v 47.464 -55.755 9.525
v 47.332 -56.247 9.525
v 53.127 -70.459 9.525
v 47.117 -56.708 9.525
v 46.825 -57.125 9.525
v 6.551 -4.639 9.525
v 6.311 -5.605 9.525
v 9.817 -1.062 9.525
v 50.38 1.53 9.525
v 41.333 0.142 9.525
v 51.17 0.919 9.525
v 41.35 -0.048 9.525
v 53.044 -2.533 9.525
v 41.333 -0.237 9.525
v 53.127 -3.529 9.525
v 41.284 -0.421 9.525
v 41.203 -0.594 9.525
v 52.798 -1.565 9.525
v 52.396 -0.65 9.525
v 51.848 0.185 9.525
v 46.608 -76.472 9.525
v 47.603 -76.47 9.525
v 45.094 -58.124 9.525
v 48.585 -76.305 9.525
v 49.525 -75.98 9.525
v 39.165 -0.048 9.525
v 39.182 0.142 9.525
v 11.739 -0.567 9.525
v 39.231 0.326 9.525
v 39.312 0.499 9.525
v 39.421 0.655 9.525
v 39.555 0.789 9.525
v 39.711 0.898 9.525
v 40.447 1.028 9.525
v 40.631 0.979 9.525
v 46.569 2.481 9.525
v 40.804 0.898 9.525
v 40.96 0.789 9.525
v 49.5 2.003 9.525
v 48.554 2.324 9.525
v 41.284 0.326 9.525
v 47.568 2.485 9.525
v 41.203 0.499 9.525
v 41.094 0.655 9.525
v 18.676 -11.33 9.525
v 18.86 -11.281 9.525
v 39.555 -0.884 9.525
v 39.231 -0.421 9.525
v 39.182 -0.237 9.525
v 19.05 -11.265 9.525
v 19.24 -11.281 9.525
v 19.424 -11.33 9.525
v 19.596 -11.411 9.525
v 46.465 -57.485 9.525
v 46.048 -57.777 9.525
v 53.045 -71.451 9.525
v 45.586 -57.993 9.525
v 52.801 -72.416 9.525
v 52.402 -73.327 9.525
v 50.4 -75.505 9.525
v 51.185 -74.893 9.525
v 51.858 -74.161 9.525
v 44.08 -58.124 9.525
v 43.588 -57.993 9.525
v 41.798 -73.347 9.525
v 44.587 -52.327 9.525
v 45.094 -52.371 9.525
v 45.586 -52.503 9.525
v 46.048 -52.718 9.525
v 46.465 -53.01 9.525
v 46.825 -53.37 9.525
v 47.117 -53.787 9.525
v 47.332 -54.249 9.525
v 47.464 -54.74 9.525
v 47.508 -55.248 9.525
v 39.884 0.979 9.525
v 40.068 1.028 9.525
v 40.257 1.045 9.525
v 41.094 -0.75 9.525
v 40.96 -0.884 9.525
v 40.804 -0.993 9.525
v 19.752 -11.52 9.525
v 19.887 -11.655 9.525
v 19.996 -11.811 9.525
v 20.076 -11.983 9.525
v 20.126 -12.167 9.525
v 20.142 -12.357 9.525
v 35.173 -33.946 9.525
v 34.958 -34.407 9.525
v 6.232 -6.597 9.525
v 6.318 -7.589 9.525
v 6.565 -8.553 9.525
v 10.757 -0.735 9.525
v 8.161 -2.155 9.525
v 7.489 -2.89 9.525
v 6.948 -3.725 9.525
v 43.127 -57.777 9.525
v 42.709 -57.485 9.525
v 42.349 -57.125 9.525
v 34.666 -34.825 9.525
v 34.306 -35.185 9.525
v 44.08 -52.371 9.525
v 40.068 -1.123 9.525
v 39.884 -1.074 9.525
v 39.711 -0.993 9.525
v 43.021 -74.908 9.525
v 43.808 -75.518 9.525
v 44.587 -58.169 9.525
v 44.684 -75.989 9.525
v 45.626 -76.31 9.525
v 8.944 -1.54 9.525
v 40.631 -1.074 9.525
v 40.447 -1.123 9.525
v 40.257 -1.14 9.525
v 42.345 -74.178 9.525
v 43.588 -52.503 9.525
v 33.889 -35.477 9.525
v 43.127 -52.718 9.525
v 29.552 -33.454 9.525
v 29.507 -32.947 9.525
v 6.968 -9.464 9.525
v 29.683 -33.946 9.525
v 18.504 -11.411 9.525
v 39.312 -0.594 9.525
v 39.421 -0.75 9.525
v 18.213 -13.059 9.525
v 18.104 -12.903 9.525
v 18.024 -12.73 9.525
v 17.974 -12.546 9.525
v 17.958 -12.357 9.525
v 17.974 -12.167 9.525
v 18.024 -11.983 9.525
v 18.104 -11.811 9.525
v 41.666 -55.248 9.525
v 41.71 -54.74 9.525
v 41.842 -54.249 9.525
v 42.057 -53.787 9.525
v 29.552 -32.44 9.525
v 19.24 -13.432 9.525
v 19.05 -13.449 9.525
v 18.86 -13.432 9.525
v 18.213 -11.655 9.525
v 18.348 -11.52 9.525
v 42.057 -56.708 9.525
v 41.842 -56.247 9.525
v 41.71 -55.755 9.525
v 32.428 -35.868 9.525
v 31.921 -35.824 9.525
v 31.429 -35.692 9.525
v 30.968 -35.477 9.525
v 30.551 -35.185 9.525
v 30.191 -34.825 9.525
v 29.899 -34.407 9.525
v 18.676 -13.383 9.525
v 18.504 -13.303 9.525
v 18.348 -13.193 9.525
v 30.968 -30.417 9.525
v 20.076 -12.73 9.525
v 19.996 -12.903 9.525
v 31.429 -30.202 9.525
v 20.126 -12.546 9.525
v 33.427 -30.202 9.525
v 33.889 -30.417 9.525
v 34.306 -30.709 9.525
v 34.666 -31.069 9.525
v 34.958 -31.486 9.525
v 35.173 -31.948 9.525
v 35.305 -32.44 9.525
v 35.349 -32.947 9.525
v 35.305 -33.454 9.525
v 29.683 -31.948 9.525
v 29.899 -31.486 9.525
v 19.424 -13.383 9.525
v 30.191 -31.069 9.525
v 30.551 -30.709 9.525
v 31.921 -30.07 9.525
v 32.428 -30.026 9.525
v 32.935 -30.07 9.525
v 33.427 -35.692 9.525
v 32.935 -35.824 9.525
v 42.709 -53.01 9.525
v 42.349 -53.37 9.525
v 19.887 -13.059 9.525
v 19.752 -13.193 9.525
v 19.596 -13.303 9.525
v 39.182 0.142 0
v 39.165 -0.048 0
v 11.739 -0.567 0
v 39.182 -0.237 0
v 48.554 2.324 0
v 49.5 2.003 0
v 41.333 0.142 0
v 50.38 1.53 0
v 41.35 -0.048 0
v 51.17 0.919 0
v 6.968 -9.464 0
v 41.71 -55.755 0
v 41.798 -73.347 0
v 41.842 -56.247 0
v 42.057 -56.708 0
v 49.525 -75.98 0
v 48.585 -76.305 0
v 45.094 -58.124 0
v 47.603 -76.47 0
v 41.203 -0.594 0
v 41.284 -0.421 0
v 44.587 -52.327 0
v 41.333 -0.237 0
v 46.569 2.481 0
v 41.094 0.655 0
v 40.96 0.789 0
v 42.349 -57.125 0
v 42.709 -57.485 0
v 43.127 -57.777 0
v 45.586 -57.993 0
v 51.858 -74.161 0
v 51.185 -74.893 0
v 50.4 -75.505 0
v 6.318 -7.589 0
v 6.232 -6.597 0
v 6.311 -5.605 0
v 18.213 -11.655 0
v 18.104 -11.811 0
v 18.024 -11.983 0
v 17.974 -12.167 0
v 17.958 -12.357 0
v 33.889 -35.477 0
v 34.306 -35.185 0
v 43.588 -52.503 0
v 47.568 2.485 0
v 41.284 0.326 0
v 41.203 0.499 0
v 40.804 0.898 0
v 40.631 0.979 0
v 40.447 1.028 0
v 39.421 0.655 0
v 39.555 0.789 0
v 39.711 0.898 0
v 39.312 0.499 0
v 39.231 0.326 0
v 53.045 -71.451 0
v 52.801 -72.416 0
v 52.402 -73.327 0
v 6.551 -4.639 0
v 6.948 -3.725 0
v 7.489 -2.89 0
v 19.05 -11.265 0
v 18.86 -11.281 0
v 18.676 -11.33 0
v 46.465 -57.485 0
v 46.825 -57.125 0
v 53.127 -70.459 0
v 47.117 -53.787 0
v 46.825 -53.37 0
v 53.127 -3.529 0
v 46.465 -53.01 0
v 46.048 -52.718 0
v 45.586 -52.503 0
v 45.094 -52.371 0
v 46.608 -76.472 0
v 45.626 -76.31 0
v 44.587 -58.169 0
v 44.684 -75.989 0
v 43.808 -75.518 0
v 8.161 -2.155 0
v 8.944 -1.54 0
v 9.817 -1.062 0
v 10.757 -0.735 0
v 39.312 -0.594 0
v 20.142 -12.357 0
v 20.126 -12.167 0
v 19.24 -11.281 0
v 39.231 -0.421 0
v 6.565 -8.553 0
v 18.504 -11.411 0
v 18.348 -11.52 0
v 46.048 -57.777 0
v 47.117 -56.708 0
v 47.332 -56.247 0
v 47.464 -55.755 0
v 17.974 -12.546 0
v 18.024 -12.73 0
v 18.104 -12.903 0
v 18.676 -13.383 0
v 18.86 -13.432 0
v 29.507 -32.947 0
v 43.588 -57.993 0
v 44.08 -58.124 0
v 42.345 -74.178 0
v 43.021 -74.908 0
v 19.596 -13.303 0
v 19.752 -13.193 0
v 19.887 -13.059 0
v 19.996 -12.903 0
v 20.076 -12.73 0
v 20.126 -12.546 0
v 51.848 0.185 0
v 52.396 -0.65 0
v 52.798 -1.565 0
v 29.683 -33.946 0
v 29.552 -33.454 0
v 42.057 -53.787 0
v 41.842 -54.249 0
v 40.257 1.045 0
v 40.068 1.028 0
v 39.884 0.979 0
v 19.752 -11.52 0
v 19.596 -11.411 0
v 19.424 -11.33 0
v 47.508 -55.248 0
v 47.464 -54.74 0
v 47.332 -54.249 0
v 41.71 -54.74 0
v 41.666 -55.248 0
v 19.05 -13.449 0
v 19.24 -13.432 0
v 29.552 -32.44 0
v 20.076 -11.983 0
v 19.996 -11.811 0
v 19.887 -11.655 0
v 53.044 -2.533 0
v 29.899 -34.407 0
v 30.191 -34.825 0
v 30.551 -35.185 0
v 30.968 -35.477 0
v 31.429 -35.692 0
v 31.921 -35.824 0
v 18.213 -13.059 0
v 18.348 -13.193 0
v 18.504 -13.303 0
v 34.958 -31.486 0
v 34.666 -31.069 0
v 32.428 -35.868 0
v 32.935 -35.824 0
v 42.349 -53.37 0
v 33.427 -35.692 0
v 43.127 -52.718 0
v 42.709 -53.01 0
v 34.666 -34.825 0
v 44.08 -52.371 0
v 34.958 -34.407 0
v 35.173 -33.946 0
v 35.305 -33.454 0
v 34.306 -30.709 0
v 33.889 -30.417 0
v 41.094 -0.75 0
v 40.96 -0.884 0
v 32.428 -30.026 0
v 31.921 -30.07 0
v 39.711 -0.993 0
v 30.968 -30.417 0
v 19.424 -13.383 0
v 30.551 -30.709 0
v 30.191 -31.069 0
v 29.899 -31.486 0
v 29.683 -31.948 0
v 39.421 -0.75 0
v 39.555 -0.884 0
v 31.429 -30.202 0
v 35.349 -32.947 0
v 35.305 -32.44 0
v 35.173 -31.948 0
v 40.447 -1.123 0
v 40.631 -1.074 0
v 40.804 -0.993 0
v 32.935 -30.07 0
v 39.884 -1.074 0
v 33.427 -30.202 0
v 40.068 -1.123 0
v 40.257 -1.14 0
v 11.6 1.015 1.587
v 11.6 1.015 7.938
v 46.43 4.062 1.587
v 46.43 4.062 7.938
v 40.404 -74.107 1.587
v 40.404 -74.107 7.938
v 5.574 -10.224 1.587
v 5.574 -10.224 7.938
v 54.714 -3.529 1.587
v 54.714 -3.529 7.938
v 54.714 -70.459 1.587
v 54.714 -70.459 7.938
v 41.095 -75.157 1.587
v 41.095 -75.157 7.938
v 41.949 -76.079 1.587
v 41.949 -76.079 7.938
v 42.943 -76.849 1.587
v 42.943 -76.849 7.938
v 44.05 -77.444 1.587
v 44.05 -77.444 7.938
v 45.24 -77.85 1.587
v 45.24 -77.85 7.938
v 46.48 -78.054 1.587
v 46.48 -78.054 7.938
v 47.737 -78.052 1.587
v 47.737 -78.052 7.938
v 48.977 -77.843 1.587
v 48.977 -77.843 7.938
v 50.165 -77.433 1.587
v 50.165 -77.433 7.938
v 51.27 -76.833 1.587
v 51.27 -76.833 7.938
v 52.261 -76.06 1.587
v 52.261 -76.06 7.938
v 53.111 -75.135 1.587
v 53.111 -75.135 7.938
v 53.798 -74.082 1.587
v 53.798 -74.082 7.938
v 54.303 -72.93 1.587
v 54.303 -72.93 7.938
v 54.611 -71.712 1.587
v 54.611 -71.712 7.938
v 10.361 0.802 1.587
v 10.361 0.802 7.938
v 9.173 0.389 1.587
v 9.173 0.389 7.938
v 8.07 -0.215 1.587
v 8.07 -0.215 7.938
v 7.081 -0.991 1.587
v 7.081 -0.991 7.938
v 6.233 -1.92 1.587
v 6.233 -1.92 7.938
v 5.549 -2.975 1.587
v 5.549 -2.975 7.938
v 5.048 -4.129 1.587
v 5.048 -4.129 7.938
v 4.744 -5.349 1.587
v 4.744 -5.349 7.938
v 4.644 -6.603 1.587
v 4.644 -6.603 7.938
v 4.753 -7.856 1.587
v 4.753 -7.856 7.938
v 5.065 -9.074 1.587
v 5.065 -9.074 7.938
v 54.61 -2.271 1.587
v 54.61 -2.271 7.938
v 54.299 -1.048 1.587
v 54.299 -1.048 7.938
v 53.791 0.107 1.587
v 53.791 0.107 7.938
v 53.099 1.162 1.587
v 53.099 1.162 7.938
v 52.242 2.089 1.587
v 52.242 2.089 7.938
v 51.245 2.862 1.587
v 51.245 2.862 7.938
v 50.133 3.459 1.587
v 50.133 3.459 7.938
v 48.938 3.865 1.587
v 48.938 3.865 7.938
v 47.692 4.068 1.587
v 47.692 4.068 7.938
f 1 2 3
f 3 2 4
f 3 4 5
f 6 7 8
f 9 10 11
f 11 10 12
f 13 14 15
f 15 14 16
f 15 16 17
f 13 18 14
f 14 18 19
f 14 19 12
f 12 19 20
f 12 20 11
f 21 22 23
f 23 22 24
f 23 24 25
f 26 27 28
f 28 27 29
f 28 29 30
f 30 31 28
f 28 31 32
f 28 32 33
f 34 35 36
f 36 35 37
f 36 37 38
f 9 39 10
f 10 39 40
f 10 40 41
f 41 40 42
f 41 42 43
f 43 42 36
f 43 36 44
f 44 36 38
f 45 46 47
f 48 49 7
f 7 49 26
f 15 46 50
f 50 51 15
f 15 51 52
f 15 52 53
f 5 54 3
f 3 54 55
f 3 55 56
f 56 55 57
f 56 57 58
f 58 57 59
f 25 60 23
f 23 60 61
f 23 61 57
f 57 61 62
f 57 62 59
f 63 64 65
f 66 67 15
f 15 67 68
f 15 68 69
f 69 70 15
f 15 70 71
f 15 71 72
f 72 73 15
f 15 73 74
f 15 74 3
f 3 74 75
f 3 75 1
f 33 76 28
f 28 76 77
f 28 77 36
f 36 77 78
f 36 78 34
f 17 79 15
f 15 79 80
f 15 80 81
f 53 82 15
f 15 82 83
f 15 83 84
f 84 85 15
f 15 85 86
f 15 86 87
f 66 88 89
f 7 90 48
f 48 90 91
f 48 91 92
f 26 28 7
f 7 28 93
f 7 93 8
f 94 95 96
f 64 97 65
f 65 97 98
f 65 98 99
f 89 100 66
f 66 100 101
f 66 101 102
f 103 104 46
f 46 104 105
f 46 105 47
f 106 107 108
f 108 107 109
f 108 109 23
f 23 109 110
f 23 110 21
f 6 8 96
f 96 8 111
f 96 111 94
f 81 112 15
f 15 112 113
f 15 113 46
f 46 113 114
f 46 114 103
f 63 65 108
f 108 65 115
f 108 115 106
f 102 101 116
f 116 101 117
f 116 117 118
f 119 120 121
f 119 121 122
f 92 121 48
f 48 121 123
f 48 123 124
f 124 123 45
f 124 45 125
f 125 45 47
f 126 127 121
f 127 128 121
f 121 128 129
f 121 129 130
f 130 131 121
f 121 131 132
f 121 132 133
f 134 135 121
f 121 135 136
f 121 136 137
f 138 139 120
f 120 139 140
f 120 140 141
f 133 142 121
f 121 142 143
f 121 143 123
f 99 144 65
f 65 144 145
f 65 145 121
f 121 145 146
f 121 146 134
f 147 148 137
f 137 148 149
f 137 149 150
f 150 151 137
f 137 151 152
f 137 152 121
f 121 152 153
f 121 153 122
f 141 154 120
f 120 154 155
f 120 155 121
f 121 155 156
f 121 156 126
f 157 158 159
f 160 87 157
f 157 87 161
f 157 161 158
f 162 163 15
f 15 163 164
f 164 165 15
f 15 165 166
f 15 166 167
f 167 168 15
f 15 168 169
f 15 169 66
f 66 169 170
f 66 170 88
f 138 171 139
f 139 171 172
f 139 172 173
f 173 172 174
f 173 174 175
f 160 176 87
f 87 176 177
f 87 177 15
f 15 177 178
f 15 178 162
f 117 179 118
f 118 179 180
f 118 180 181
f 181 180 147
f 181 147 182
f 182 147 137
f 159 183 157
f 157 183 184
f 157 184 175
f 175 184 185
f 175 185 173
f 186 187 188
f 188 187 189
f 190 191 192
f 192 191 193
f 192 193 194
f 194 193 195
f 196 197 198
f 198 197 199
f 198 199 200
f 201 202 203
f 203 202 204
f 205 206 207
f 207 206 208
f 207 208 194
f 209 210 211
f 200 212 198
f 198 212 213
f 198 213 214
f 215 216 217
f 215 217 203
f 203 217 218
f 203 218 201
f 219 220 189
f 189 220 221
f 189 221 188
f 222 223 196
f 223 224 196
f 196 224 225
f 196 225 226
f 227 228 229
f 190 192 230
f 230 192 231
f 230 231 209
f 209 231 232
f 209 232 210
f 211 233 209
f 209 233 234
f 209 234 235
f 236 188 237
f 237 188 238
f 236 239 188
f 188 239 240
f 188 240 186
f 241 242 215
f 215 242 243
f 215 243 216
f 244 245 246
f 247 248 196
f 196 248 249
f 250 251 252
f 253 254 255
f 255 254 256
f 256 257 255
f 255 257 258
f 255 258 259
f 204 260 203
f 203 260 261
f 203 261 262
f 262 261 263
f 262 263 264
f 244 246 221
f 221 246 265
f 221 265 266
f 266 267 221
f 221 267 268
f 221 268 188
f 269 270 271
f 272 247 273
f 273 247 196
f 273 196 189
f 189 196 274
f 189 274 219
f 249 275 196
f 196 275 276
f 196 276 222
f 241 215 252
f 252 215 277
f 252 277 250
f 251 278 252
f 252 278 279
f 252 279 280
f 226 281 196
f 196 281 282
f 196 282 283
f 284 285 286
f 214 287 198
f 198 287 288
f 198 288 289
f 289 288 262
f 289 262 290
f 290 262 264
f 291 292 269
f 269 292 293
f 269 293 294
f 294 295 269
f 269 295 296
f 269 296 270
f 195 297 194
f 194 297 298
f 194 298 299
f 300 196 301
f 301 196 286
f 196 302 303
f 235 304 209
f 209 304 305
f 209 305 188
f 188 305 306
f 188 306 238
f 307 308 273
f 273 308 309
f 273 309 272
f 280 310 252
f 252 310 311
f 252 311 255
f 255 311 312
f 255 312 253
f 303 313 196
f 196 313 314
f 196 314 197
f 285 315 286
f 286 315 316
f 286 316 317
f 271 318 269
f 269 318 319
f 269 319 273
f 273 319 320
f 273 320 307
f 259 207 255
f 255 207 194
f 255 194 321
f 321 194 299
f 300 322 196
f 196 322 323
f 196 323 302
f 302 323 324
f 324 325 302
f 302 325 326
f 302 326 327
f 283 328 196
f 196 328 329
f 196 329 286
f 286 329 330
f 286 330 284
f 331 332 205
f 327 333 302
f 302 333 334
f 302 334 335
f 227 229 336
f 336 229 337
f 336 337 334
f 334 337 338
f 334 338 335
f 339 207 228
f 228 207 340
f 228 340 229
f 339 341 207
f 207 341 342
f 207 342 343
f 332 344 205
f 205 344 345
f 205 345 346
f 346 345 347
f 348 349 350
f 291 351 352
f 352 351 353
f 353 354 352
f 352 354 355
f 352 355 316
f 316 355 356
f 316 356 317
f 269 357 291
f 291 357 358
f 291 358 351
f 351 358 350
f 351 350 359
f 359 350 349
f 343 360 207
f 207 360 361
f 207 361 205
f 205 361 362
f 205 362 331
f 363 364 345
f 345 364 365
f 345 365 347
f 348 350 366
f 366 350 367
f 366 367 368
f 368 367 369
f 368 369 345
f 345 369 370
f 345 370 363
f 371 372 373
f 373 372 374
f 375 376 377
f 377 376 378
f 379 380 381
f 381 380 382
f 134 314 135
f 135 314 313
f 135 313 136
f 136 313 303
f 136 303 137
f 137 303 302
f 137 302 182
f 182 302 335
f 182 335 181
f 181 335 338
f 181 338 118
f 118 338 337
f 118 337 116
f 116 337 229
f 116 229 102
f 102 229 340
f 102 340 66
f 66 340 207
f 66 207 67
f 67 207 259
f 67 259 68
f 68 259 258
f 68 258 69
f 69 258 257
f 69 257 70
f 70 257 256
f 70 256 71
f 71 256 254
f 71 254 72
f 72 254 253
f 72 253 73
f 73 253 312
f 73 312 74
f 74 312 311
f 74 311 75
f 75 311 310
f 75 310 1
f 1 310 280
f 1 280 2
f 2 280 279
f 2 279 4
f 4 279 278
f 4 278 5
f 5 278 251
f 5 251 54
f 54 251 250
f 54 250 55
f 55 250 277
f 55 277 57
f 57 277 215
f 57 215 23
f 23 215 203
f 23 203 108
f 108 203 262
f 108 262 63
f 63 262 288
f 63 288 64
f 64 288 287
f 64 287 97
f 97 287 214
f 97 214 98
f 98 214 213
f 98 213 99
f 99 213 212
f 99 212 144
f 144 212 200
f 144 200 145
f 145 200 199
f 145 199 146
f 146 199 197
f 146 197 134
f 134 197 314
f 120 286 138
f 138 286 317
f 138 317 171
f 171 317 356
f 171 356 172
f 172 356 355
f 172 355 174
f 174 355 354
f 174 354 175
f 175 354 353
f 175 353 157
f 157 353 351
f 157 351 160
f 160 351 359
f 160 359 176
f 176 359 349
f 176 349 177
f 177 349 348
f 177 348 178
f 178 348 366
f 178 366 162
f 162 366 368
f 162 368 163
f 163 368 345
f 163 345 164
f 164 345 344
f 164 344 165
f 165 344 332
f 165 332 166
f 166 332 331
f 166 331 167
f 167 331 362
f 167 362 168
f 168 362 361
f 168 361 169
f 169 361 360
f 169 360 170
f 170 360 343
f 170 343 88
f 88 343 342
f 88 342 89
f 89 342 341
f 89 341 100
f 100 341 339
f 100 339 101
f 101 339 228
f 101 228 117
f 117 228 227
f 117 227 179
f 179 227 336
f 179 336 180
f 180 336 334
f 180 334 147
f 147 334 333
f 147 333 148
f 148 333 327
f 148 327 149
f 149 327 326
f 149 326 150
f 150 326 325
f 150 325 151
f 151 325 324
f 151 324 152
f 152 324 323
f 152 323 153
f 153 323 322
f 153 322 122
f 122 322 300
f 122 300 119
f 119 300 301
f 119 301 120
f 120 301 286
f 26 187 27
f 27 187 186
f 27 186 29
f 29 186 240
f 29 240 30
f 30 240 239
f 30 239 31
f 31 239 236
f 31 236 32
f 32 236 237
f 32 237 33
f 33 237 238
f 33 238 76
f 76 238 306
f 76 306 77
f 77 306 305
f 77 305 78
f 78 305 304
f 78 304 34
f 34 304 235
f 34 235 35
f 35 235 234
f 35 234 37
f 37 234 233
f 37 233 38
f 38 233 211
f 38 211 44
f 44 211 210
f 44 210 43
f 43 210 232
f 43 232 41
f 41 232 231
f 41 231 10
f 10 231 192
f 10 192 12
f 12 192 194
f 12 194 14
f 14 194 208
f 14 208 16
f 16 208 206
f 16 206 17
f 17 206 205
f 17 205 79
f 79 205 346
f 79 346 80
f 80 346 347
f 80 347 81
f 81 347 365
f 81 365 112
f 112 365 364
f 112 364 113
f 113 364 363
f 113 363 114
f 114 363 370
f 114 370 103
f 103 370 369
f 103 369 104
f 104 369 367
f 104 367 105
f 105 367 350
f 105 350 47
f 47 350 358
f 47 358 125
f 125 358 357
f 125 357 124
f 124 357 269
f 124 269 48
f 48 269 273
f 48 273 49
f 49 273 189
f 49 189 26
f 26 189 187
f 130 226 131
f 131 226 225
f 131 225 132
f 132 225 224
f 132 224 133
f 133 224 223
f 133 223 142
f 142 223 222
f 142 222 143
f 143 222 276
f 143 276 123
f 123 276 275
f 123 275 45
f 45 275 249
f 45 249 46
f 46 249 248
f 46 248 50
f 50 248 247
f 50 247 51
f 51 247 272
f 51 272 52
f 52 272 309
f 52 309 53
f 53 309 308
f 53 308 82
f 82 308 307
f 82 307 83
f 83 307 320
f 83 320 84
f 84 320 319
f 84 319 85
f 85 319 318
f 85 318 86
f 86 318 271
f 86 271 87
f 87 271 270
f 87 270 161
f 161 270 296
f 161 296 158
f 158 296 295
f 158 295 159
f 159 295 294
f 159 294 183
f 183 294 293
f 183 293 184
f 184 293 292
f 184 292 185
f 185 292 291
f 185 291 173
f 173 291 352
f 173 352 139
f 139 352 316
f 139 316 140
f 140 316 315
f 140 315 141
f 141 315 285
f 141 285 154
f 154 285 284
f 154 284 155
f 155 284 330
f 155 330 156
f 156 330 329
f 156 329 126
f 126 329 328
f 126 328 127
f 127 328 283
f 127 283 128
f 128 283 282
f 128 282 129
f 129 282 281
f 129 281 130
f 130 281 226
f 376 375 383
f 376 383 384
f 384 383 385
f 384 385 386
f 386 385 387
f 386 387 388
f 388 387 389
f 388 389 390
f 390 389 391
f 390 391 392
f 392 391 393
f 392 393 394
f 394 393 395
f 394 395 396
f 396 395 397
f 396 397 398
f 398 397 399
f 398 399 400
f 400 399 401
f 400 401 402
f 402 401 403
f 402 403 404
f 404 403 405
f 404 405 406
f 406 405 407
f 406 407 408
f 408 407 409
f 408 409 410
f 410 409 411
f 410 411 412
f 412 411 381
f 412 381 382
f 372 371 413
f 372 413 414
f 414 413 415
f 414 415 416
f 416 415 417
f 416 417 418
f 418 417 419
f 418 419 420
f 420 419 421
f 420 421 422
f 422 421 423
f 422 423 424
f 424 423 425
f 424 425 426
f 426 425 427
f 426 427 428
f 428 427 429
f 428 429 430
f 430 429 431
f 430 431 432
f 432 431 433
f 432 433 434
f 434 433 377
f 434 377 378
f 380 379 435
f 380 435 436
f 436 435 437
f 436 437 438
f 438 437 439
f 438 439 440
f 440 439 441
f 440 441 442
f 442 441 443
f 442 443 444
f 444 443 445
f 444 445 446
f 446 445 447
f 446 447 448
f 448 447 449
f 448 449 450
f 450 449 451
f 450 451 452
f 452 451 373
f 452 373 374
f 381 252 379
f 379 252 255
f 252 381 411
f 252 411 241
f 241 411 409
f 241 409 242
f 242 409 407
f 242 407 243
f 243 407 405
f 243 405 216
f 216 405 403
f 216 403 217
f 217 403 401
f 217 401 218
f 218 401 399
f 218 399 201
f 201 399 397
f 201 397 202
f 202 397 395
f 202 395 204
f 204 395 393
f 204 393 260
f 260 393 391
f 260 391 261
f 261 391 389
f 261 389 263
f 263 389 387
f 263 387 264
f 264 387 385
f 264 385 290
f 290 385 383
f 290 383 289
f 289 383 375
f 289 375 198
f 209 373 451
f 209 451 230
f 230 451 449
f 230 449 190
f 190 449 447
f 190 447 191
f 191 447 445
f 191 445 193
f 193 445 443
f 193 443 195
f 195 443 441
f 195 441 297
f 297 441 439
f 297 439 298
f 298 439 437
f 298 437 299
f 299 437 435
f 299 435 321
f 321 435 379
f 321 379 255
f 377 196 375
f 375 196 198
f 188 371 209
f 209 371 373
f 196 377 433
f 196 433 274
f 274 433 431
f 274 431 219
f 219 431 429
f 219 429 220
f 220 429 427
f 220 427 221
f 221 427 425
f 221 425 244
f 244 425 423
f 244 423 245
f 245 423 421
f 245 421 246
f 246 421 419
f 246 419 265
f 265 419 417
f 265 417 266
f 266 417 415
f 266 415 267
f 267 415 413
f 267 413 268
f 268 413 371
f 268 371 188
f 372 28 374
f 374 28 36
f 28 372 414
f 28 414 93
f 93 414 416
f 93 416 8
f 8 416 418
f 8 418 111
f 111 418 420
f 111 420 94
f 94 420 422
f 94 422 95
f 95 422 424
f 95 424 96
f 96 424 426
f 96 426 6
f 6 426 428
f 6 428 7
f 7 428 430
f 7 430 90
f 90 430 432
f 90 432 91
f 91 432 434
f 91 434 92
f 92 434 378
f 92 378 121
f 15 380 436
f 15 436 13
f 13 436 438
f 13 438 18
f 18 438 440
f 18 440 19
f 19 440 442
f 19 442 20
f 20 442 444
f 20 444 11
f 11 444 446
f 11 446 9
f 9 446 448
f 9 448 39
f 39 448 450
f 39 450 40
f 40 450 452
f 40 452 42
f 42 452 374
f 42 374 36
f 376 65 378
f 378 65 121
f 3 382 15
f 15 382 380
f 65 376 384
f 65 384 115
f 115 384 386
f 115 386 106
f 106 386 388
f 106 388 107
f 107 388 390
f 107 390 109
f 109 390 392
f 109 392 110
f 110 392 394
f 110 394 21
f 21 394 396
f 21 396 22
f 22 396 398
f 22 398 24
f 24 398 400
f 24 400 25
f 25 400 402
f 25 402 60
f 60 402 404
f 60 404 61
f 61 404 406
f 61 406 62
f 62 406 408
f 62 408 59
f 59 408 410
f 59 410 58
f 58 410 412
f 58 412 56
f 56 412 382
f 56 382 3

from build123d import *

# Parameters (mm, degrees)
SKETCH1_R           = 2.921
SKETCH1_R_2         = 1.0922
BOSS_EXTRUDE1_DEPTH = 9.525
FILLET1_R           = 7.62
CHAMFER1_SIZE       = 1.5875


with BuildPart() as part:
    # Sketch1 → Boss-Extrude1 (new body)
    with BuildSketch(Plane.XY):
        Polygon((0, 0), (54.714479363, -100.353454091), (54.714479363, 4.786896675), align=None)
        with Locations(Location((44.587010065, -55.247724238, 0), (0, 0, 180))):
            Circle(SKETCH1_R, mode=Mode.SUBTRACT)
        with Locations(Location((32.428236873, -32.946956662, 0), (0, 0, 180))):
            Circle(SKETCH1_R, mode=Mode.SUBTRACT)
        with Locations(Location((40.257483915, -0.047509878, 0), (0, 0, 180))):
            Circle(SKETCH1_R_2, mode=Mode.SUBTRACT)
        with Locations(Location((19.05, -12.35670409, 0), (0, 0, 180))):
            Circle(SKETCH1_R_2, mode=Mode.SUBTRACT)
    extrude(amount=BOSS_EXTRUDE1_DEPTH)

    # Fillet1
    fillet1_edges = [part.edges().sort_by_distance(p)[0] for p in [
        (54.714479363, 4.786896675, 4.7625),
        (54.714479363, -100.353454091, 4.7625),
        (0, 0, 4.7625),
    ]]
    fillet(fillet1_edges, radius=FILLET1_R)

    # Chamfer1
    chamfer1_edges = [part.edges().sort_by_distance(p)[0] for p in [
        (54.714479363, -36.993938617, 0),
        (54.714479363, -36.993938617, 9.525),
        (29.01531101, 2.538510782, 0),
        (22.989207497, -42.165189288, 0),
        (52.242476745, 2.089179203, 0),
        (5.548863872, -2.975274703, 0),
        (48.97661184, -77.842903003, 0),
        (22.989207497, -42.165189288, 9.525),
        (29.01531101, 2.538510782, 9.525),
        (52.242476745, 2.089179203, 9.525),
        (5.548863872, -2.975274703, 9.525),
        (48.97661184, -77.842903003, 9.525),
    ]]
    chamfer(chamfer1_edges, length=CHAMFER1_SIZE)


solid = part.part
